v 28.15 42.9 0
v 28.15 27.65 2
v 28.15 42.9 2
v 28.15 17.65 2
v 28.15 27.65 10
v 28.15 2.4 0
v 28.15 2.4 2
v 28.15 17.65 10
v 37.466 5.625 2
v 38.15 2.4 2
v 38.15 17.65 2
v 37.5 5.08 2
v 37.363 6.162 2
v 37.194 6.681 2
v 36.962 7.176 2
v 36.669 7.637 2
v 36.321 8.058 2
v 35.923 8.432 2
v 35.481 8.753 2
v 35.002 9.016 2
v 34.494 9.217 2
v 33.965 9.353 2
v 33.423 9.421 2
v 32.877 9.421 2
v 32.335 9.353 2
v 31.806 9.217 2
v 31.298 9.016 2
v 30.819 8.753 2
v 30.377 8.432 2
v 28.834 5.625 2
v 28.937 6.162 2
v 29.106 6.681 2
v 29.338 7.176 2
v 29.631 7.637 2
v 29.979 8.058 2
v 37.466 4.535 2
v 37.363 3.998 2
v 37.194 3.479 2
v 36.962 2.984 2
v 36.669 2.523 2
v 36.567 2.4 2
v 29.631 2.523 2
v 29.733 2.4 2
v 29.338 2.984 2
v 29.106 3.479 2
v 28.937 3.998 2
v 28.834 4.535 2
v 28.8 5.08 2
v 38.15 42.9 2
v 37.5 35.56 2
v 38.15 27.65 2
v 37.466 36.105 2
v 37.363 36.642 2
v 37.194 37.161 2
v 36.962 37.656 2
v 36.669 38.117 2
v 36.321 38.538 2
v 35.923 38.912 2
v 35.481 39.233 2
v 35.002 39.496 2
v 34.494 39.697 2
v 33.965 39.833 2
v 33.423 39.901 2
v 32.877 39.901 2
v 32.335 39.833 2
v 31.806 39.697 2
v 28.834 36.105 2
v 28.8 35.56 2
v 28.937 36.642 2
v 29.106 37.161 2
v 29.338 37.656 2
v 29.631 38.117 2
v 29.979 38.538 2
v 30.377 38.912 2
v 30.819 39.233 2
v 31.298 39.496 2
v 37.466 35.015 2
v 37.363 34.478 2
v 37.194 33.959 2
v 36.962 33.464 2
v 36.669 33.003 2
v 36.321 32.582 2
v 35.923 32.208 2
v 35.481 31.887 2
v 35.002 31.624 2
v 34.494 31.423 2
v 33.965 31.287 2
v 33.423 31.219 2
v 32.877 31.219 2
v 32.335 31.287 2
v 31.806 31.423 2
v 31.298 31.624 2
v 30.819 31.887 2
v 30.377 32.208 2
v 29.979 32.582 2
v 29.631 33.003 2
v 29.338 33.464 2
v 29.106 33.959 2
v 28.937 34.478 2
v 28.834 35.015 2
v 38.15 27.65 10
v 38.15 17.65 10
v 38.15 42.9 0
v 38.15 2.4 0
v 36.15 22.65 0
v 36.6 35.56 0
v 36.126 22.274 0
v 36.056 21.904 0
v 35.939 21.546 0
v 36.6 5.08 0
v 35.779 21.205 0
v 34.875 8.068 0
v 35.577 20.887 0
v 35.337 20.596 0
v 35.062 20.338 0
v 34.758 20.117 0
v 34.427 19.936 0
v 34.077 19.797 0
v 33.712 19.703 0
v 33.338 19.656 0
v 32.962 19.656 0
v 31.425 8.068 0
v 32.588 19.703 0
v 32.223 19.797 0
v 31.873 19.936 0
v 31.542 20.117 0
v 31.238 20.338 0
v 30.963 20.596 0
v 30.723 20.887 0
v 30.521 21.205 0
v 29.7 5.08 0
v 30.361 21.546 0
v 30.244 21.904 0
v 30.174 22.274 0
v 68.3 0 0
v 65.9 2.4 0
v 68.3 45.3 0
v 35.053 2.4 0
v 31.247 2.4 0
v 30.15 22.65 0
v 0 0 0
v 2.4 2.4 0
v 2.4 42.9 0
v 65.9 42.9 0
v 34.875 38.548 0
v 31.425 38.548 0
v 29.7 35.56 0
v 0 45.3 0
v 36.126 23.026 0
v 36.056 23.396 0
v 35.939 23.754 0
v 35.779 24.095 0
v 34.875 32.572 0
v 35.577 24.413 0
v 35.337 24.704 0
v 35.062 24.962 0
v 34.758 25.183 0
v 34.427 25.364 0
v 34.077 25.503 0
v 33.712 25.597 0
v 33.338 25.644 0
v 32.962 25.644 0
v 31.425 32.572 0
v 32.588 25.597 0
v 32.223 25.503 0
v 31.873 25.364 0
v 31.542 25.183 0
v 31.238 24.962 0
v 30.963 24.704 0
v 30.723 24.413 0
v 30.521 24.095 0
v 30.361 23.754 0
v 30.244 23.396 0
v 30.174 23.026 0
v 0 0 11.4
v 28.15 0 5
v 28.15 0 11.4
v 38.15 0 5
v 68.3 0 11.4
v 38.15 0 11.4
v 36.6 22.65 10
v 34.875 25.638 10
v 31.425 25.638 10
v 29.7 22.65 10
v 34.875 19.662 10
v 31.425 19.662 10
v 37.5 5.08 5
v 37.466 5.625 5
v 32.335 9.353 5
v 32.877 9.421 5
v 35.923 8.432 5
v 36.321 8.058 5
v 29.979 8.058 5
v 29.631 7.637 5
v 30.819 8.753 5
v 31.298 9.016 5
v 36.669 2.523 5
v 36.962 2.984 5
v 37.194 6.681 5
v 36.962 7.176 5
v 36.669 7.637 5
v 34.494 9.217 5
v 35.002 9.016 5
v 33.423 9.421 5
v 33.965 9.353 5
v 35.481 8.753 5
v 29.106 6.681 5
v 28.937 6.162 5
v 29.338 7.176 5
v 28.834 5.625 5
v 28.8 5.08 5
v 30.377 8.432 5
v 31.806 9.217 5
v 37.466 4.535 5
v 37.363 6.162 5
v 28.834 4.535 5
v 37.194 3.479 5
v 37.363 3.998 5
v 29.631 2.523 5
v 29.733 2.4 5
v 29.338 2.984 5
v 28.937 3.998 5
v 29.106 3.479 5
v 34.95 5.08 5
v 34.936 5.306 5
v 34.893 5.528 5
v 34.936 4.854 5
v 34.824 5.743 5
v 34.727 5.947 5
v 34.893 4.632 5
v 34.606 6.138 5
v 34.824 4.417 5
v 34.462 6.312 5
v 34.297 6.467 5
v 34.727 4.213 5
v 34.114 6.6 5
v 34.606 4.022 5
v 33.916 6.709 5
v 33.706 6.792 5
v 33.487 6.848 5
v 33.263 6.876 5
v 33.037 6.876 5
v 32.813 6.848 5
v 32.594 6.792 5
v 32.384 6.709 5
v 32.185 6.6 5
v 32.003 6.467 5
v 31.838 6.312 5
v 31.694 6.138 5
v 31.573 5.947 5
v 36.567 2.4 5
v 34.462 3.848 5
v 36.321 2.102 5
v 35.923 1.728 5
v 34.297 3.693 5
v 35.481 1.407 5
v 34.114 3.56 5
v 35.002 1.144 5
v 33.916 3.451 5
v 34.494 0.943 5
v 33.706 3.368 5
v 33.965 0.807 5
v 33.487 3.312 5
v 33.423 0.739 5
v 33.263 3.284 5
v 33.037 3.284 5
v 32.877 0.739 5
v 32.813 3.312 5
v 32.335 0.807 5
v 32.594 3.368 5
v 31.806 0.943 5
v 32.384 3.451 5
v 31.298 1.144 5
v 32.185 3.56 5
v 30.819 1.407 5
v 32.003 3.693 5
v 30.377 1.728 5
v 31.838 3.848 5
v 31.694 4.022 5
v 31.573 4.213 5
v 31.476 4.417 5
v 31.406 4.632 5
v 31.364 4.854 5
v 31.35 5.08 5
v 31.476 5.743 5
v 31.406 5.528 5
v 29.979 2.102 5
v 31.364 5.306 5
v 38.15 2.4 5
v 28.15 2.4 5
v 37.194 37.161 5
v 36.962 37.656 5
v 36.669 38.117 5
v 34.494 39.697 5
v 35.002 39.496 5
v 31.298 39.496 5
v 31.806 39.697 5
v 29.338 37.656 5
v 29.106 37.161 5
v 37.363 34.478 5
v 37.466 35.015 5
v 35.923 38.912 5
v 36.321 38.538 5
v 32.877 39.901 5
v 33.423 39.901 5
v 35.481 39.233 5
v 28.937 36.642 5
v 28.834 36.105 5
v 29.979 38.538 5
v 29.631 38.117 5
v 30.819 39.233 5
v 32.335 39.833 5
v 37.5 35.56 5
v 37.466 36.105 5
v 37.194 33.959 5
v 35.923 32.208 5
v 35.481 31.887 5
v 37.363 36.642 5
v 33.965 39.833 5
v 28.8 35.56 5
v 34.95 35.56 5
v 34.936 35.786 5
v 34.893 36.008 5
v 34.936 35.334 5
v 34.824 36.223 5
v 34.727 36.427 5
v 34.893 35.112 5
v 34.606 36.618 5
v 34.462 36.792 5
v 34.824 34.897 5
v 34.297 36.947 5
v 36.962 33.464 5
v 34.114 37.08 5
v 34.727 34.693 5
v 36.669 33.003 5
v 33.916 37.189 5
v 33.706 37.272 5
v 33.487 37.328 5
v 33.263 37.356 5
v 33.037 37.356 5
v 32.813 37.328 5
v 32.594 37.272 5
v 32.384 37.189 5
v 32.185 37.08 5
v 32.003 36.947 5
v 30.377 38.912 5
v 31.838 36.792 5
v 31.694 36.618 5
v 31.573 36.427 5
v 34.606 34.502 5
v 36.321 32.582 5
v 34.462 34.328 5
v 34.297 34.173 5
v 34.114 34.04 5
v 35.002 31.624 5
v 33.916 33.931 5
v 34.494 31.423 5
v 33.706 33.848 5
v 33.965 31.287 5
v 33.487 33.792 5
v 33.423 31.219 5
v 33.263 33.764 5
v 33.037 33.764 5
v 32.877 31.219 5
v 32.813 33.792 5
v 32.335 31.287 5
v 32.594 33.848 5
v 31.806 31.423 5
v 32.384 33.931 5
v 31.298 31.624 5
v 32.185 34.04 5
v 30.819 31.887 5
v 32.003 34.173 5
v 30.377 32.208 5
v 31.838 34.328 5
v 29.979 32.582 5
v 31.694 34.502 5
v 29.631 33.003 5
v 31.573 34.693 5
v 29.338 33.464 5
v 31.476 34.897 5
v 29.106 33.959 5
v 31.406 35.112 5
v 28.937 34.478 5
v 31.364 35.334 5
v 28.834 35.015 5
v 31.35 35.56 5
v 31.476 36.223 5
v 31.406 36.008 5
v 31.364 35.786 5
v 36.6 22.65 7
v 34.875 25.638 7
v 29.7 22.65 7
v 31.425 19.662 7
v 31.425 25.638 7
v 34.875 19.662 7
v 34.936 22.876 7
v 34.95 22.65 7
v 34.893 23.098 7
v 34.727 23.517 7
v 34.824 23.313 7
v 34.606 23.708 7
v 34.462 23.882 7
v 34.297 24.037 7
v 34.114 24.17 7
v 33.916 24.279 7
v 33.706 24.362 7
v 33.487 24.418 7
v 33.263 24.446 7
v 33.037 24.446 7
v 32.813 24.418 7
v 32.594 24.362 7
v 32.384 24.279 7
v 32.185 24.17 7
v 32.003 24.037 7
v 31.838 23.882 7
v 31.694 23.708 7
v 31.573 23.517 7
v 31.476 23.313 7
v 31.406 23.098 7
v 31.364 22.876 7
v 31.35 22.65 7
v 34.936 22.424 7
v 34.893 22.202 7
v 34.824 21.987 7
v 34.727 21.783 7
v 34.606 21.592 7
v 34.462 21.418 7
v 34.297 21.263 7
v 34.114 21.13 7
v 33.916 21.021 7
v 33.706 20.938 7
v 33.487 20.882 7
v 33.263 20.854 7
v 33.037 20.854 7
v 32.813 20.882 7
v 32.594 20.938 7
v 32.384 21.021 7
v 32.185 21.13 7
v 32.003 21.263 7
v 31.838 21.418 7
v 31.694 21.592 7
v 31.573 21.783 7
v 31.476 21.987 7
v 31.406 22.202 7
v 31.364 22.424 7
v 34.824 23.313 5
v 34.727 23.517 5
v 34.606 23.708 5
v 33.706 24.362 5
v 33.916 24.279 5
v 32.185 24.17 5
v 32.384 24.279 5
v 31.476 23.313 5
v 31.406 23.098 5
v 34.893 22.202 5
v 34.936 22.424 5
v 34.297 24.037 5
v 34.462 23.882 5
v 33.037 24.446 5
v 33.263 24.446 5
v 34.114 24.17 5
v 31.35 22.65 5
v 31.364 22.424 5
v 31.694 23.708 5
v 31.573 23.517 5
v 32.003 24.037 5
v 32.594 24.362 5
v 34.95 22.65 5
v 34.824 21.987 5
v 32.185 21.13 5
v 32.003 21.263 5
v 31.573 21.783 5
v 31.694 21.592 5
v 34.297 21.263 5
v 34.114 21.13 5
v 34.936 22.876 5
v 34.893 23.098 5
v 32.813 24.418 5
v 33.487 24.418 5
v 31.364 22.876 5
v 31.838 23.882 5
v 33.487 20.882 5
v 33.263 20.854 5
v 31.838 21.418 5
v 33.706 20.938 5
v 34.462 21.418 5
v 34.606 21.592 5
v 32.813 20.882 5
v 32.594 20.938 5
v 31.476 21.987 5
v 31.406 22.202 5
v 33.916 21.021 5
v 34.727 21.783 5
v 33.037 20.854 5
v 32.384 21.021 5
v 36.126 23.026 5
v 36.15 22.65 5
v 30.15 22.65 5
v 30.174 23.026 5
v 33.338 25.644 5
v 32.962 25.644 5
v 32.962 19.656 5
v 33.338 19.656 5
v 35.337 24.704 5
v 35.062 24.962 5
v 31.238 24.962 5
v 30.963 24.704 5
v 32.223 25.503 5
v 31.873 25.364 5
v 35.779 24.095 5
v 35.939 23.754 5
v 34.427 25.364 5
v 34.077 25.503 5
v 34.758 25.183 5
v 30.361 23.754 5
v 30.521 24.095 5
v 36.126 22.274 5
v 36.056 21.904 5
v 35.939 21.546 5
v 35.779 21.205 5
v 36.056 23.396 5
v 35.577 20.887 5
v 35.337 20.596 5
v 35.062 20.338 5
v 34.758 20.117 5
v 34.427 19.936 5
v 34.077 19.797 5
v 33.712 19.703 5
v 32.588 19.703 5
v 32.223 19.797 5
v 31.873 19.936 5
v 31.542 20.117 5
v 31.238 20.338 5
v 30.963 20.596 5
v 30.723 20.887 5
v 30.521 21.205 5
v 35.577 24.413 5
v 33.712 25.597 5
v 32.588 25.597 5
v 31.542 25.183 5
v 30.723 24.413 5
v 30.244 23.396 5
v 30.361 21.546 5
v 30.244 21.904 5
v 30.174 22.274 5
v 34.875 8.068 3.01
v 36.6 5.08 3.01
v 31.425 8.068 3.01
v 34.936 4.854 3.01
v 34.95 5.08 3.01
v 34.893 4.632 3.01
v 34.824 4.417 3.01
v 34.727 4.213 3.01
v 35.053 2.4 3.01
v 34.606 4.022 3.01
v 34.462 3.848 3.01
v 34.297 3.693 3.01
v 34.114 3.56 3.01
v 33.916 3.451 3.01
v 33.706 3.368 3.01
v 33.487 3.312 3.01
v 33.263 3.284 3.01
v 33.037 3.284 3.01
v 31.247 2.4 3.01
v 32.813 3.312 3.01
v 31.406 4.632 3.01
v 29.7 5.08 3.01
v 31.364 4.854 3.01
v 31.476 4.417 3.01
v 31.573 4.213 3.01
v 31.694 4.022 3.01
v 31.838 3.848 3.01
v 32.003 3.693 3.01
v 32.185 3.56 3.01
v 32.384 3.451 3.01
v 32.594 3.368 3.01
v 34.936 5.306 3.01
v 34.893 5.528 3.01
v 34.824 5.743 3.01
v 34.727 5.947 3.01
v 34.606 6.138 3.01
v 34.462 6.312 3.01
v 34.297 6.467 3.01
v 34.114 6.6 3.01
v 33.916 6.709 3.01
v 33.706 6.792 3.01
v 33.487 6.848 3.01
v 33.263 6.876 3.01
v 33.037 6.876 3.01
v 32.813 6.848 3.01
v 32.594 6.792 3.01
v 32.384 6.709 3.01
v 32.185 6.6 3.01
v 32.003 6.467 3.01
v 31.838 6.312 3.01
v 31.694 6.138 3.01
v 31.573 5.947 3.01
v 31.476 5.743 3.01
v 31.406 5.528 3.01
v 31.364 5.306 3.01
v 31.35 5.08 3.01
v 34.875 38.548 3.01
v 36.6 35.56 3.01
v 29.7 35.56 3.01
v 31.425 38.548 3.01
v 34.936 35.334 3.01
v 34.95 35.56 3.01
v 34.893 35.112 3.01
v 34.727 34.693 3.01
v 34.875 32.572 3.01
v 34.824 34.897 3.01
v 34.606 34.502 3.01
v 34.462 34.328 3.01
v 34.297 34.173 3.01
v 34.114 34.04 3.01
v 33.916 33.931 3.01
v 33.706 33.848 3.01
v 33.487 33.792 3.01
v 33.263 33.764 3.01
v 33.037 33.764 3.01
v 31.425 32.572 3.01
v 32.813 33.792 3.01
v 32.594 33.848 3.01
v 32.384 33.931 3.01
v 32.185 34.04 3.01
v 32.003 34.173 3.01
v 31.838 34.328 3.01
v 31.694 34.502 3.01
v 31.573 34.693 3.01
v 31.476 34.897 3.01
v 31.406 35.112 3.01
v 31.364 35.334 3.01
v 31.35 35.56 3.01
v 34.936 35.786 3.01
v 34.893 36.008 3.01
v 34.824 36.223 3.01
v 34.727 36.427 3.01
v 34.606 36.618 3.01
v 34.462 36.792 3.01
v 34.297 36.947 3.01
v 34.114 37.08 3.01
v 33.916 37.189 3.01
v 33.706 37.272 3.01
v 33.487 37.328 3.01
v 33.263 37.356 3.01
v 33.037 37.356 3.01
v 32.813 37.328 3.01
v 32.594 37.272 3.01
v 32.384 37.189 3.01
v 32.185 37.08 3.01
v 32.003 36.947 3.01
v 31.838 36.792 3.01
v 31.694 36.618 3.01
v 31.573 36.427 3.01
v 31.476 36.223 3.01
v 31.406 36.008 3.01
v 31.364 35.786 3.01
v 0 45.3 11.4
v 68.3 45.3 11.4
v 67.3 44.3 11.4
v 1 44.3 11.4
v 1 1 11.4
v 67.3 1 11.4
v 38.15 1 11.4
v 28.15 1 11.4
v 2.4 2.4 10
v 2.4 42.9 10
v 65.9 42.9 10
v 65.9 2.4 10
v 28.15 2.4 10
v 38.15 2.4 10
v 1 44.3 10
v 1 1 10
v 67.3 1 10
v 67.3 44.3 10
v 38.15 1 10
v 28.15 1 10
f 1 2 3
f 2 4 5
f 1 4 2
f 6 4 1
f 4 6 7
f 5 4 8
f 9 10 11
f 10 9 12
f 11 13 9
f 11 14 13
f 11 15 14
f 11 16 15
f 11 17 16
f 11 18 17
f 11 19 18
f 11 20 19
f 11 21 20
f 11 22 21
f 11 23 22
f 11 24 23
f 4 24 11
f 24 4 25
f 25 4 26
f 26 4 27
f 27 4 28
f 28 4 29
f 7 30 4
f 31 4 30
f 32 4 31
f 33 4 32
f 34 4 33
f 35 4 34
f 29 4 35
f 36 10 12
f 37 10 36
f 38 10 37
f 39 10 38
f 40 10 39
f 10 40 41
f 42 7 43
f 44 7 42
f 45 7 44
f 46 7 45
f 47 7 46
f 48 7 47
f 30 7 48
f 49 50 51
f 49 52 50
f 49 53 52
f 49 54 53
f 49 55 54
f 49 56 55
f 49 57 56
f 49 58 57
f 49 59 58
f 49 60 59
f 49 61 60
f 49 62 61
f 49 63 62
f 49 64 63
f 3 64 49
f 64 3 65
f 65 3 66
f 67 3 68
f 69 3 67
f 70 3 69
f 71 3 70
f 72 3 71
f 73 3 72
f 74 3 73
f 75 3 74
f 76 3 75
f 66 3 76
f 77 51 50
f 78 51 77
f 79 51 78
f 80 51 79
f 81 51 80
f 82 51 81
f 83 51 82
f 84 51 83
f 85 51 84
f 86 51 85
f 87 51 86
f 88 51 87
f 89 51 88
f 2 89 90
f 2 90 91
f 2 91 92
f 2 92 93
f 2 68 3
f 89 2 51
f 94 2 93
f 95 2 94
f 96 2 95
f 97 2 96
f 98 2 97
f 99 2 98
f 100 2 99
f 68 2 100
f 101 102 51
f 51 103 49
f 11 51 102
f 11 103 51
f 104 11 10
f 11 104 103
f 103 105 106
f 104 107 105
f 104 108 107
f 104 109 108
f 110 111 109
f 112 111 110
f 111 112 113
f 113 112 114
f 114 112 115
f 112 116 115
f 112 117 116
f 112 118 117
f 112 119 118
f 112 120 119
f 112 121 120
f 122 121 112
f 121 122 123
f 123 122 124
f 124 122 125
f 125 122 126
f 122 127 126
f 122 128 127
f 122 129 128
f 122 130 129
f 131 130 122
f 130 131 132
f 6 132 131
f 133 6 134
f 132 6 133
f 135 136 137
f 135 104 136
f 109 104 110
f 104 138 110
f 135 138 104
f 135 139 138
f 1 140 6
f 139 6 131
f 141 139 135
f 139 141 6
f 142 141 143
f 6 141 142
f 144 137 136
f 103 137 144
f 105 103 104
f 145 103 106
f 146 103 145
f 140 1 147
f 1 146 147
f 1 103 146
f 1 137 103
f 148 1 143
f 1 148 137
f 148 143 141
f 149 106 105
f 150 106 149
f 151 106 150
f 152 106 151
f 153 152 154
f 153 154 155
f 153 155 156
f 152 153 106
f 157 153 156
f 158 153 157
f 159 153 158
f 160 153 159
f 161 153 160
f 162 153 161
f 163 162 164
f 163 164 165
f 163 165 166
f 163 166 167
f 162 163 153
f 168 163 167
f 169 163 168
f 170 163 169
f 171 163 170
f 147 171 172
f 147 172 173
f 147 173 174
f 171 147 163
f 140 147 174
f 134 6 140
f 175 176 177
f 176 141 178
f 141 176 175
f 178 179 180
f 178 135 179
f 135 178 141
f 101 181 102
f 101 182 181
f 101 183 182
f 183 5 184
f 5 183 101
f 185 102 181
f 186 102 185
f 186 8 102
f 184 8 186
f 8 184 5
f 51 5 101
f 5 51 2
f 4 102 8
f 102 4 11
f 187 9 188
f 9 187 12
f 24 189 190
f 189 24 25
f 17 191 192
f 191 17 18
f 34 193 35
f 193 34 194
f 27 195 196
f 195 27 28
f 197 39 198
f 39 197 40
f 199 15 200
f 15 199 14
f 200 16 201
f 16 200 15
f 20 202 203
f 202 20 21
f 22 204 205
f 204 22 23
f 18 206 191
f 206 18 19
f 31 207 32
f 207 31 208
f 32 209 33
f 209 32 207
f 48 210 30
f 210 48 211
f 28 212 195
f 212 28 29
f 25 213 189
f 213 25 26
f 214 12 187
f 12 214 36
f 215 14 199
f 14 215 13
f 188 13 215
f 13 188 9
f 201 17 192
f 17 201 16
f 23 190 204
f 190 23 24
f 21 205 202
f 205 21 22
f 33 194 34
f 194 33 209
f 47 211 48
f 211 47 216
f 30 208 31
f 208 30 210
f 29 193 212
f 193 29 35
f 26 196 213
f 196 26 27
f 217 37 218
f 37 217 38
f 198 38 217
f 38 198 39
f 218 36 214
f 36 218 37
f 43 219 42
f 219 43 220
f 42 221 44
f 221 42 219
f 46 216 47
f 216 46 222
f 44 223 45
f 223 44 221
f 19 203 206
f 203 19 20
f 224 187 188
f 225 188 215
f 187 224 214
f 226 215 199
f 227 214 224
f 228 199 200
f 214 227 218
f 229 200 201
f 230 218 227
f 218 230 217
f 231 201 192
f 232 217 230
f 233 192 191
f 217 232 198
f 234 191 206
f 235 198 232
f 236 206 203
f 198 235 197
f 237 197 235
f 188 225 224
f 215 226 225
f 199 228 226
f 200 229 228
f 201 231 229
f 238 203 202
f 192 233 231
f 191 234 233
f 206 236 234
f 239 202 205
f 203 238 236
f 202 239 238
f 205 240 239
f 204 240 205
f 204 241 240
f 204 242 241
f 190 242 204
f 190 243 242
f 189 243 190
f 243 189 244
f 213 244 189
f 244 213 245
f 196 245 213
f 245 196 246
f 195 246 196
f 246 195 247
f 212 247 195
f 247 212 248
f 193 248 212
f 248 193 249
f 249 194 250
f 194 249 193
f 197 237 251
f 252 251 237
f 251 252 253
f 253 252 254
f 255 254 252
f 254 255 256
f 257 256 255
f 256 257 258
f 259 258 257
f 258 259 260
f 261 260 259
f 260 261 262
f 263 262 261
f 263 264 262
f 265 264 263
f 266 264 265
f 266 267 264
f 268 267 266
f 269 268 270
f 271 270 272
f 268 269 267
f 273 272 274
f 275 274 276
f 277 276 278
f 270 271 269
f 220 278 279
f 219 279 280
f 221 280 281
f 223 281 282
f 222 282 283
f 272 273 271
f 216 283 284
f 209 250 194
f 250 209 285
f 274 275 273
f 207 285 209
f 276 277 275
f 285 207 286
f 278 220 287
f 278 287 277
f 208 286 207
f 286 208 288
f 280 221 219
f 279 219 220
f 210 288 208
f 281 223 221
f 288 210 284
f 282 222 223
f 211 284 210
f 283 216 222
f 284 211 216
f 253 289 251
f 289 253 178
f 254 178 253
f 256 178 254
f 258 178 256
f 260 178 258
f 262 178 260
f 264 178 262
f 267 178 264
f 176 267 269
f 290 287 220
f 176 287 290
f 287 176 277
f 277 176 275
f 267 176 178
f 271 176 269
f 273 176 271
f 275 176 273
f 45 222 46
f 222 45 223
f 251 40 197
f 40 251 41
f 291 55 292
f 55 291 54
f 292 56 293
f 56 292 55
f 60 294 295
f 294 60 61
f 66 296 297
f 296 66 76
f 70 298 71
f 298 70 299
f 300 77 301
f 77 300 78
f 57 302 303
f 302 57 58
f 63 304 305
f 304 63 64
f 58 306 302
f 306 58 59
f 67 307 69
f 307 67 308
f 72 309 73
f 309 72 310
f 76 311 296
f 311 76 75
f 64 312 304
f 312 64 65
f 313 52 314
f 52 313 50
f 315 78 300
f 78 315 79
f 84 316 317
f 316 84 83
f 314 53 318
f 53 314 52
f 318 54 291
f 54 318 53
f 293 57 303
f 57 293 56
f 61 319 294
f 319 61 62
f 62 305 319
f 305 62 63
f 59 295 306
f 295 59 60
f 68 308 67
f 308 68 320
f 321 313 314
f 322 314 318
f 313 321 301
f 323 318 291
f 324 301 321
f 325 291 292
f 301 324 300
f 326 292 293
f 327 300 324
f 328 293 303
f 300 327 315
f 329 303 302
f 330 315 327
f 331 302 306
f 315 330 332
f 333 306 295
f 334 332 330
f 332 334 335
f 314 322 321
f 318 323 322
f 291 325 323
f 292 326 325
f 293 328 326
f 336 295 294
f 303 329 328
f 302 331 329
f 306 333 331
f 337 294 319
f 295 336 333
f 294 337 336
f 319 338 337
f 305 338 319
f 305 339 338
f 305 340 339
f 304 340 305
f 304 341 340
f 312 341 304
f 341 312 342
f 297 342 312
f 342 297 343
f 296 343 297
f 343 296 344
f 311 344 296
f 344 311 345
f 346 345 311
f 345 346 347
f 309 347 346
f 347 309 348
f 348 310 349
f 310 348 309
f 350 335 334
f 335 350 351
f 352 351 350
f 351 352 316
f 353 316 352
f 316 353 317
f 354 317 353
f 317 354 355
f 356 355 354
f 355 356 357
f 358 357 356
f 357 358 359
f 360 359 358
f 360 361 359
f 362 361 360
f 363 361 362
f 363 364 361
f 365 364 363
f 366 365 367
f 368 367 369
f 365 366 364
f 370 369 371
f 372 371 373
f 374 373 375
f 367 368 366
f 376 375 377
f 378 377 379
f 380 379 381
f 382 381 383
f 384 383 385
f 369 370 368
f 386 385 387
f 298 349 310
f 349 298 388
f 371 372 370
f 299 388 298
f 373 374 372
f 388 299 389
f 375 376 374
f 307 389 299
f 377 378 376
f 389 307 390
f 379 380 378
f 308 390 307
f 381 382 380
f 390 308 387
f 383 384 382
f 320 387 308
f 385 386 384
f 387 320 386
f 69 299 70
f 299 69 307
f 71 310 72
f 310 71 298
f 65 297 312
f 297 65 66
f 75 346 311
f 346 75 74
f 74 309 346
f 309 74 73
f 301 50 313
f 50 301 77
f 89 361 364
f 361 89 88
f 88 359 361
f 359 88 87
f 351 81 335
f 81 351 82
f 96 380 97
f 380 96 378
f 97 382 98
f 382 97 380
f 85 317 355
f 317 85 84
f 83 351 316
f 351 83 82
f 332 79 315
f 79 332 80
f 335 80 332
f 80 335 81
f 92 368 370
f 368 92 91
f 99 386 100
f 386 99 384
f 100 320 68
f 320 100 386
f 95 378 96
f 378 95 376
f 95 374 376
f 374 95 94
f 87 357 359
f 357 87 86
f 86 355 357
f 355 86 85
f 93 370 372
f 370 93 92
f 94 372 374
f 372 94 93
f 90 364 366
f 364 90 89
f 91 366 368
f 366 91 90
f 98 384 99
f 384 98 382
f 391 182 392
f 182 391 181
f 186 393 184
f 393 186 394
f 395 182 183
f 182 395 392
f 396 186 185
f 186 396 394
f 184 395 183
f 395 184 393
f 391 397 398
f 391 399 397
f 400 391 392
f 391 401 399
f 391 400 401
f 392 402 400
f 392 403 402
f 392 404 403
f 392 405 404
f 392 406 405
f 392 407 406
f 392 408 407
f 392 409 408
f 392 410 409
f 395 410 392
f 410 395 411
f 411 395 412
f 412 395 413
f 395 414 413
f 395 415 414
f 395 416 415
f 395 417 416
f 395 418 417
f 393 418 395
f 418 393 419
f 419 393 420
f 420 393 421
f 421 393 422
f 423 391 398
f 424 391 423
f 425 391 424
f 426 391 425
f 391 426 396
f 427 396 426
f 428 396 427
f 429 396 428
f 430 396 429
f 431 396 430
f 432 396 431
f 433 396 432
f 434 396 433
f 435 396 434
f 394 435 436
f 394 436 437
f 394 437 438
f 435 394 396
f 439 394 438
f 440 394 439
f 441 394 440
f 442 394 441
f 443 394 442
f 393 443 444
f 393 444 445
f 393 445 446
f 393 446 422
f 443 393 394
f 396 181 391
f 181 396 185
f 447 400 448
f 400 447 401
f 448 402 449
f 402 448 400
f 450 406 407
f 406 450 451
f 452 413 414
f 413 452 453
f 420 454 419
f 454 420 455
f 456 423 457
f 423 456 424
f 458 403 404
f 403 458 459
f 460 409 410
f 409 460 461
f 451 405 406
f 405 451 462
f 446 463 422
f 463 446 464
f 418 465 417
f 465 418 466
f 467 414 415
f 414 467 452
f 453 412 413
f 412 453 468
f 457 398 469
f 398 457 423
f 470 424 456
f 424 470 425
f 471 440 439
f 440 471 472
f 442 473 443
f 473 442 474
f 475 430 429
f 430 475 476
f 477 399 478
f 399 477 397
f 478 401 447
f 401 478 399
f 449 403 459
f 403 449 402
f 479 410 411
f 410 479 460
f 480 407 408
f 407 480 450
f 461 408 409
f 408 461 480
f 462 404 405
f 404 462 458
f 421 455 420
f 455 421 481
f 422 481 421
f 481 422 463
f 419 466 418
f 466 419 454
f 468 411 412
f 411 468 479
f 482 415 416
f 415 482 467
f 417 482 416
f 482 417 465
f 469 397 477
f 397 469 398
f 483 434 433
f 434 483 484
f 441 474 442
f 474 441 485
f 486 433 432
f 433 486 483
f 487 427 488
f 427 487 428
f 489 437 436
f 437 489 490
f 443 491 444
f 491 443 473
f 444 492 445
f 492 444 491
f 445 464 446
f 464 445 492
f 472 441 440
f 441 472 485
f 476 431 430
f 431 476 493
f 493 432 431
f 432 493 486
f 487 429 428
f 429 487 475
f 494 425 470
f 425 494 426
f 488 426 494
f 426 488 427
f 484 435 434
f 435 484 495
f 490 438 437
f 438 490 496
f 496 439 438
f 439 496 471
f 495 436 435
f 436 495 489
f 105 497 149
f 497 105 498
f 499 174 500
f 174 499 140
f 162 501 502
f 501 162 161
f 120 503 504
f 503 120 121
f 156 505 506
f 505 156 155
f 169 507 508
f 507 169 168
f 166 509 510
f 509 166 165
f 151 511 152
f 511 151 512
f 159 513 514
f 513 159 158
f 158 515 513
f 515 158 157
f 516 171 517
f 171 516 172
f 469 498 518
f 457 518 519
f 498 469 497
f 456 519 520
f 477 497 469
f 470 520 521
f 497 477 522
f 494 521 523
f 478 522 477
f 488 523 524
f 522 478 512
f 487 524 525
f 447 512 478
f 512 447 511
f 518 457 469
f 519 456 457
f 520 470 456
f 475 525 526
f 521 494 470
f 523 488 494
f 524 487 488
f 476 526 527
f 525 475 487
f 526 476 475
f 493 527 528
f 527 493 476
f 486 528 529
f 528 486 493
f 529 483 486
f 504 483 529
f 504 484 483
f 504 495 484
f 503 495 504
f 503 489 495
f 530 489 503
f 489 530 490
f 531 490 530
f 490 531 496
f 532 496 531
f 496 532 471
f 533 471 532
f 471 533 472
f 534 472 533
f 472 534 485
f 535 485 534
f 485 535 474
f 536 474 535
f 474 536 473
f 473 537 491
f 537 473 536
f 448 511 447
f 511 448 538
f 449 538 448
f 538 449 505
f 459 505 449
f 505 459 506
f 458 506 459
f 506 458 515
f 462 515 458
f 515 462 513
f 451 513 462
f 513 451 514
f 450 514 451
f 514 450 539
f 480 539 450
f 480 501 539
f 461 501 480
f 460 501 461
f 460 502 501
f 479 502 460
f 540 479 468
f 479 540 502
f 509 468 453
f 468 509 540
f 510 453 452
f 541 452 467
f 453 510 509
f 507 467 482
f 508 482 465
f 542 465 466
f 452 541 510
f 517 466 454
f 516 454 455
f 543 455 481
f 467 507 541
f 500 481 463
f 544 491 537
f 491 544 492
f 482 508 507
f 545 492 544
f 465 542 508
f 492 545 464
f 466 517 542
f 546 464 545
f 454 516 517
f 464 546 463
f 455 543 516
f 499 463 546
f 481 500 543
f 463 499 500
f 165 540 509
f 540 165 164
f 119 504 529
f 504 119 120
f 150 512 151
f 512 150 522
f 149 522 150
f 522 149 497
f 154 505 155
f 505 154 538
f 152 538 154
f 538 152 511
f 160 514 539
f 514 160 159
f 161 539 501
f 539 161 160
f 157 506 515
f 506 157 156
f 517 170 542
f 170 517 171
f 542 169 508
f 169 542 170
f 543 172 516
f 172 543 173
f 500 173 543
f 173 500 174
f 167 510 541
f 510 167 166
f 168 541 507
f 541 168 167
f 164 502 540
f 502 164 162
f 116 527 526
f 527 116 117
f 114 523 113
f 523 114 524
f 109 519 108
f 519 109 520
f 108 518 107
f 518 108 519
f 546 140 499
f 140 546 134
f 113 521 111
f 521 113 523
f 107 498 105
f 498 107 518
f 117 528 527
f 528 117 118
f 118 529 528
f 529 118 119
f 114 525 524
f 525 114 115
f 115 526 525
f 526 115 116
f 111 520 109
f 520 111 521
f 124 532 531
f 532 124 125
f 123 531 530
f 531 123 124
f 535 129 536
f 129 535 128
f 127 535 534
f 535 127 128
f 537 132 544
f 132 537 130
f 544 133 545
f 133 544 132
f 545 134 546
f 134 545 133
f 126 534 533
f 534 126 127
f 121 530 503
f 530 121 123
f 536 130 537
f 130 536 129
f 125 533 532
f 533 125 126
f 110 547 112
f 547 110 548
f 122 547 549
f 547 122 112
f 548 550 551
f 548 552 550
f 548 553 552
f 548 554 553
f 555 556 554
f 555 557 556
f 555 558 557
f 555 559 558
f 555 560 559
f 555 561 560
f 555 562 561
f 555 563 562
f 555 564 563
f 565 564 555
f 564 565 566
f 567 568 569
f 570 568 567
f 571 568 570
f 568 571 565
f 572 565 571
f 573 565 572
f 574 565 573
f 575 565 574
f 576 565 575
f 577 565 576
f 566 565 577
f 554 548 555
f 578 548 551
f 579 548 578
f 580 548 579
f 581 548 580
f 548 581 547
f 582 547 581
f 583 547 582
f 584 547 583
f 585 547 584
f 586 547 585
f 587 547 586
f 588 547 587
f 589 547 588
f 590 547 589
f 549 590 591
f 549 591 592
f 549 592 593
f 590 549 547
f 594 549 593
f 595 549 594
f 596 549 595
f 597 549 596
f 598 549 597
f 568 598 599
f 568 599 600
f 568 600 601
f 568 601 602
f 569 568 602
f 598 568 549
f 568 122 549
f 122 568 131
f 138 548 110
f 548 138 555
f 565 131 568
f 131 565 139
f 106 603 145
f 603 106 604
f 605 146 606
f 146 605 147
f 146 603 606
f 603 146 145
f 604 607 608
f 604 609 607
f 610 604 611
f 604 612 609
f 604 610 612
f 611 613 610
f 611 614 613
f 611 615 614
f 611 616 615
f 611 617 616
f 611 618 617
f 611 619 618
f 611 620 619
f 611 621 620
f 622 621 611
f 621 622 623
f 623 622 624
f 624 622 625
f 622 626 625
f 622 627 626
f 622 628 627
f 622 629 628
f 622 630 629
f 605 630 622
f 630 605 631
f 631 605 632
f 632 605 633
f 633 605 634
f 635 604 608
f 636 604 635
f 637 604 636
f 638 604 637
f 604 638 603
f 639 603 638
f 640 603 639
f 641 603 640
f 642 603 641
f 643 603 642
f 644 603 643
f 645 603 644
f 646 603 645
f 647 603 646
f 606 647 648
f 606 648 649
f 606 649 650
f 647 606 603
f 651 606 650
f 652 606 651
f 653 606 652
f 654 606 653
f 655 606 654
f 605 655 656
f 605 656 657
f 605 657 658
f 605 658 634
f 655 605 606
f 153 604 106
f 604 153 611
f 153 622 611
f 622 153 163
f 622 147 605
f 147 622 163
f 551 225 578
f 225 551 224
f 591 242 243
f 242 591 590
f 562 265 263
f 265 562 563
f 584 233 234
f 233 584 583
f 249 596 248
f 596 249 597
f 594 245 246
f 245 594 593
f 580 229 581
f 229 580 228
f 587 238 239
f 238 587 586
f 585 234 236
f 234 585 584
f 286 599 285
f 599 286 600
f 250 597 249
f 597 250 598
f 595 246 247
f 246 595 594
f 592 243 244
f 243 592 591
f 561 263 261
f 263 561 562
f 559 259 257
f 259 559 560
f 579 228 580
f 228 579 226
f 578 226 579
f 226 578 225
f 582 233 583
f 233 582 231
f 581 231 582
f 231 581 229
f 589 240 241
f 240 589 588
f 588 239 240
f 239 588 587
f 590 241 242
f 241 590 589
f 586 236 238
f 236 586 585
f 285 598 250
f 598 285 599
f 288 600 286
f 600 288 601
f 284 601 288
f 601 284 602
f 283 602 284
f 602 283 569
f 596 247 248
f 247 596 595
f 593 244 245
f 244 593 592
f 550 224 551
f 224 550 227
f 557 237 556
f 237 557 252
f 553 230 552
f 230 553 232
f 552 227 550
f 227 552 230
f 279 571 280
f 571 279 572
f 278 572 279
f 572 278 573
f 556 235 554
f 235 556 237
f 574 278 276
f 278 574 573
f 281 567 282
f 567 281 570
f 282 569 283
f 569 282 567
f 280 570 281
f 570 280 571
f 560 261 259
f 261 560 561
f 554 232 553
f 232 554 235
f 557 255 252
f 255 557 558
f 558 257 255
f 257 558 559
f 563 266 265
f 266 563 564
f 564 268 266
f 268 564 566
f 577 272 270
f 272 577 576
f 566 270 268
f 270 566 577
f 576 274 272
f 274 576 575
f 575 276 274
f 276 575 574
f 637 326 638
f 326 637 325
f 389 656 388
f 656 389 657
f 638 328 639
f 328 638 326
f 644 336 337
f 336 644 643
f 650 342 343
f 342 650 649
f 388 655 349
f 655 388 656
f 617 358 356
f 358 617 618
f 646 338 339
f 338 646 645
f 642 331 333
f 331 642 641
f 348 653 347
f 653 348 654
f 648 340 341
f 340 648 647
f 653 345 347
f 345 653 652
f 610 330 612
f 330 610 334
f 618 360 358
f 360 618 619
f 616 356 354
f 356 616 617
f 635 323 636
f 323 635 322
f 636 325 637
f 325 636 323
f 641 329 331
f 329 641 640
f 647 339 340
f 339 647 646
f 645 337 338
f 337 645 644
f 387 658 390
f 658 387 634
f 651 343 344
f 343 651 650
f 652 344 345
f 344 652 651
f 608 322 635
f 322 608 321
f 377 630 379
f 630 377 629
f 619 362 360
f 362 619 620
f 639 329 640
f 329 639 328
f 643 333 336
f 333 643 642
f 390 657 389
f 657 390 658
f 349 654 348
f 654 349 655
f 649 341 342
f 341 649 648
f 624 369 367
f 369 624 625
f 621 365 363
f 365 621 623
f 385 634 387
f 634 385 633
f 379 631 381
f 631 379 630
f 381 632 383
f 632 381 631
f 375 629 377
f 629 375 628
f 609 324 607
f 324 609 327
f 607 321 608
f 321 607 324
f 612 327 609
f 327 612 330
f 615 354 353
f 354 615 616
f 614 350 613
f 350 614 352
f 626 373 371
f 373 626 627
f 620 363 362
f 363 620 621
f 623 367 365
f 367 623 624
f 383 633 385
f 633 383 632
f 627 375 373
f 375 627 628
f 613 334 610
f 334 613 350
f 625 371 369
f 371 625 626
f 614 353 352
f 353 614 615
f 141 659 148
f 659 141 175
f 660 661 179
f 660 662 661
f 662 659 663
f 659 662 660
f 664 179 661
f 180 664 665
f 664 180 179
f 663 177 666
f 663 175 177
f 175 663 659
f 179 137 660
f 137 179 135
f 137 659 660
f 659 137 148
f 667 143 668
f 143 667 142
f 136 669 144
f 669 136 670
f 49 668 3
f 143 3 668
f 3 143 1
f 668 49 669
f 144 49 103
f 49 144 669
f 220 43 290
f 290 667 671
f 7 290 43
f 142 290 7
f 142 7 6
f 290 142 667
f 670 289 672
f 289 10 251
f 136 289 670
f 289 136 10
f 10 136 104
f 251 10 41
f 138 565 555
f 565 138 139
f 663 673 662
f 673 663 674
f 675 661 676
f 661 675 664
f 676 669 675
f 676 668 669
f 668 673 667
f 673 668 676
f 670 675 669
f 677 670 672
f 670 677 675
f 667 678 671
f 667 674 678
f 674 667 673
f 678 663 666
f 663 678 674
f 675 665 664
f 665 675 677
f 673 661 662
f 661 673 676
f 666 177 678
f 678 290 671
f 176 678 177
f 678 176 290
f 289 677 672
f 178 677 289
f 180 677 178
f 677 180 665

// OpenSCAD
$fn=50;


rozmer_x=66.3;
rozmer_y=43.3;
hrana_okraje=1.4;

vyska_soucastek=0;

M3_vyska_matky=3;
M3_sirka_matky=6.7;
M3_prumer_hlavy_sroubu=6;
M3_vyska_hlavy=5;
M3_prumer=3.4;

roztec_der=10.16;
sila_materialu=2;




MRAKOMER4_HOLDER03A();

module MRAKOMER4_HOLDER03A()
{
    
    
//obvod    
difference() {
    cube([rozmer_x+2,rozmer_y+2,vyska_soucastek+M3_vyska_matky+M3_vyska_hlavy+sila_materialu+1.4],center=false);
 
    
    //odstraneni vnitrni vyplne
   translate([hrana_okraje+1,hrana_okraje+1,0])  
cube([rozmer_x-2*hrana_okraje,rozmer_y-2*hrana_okraje,vyska_soucastek+M3_vyska_matky+M3_vyska_hlavy+sila_materialu+0.1],center=false);   
 
    //odstraneni rantlu
   translate([1,1,vyska_soucastek+M3_vyska_matky+M3_vyska_hlavy+sila_materialu])  
cube([rozmer_x,rozmer_y,vyska_soucastek+M3_vyska_matky+M3_vyska_hlavy+sila_materialu+0.1+1.4],center=false);     
    
    //odstranění části bočnice
    
   translate([rozmer_x/2-5,-5,M3_vyska_matky+sila_materialu])    
 cube([10,rozmer_y,vyska_soucastek+M3_vyska_matky+M3_vyska_hlavy+sila_materialu+3],center=false);    
    
    
    
    }
 
    
    //prostredni drzak
  difference(){
  union(){
    //spodni cast
     translate([rozmer_x/2-5,0,0])    
 cube([10,rozmer_y,sila_materialu],center=false);   
   
    
    //valec prostredni
   translate([rozmer_x/2-5,(rozmer_y+2)/2-5,0])   
    cube([10,10,vyska_soucastek+M3_vyska_matky+M3_vyska_hlavy+sila_materialu],center=false);      
  
    
   //valec krajni 1
      translate([rozmer_x/2,5.08,0])   
   cylinder(h=M3_vyska_matky+sila_materialu, r=(M3_sirka_matky+sila_materialu)/2, center=false);   
      
        //valec krajni 2
      translate([rozmer_x/2,35.56,0])   
   cylinder(h=M3_vyska_matky+sila_materialu, r=(M3_sirka_matky+sila_materialu)/2, center=false); 
      
      
      
    }
    
    //otvor na matku
   translate([rozmer_x/2,(rozmer_y+2)/2,vyska_soucastek+M3_vyska_hlavy+sila_materialu])  
    cylinder (h = M3_vyska_matky+0.01, r= (M3_sirka_matky+0.2)/2, $fn=6); 
    
     //otvor na sroub
   translate([rozmer_x/2,(rozmer_y+2)/2,0])  
    cylinder (h = vyska_soucastek+M3_vyska_hlavy+sila_materialu+M3_vyska_matky+0.01, r= (M3_prumer+0.2)/2, $fn=50);  
    
    //otvor na hlavu šroubu
    translate([rozmer_x/2,(rozmer_y+2)/2,0]) 
     cylinder(h=M3_vyska_hlavy, r=M3_prumer_hlavy_sroubu/2, center=false);
    
     //valec krajni 1 - otvor na matku
 translate([rozmer_x/2,5.08,0]) 
    cylinder (h = M3_vyska_matky+0.01, r= (M3_sirka_matky+0.2)/2, $fn=6); 
   
    
         //valec krajni 2 - otvor na matku
  translate([rozmer_x/2,35.56,0])
    cylinder (h = M3_vyska_matky+0.01, r= (M3_sirka_matky+0.2)/2, $fn=6); 
    
   
    
    
    
     //valec krajni 1 - otvor na sroub
   translate([rozmer_x/2,5.08,0])   
    cylinder (h = vyska_soucastek+M3_vyska_hlavy+sila_materialu+M3_vyska_matky+0.01, r= (M3_prumer+0.2)/2, $fn=50);  
    
    
     //valec krajni 2 - otvor na sroub
   translate([rozmer_x/2,35.56,0])  
    cylinder (h = vyska_soucastek+M3_vyska_hlavy+sila_materialu+M3_vyska_matky+0.01, r= (M3_prumer+0.2)/2, $fn=50);  
    
    }
      
    
    
    }
 


  
